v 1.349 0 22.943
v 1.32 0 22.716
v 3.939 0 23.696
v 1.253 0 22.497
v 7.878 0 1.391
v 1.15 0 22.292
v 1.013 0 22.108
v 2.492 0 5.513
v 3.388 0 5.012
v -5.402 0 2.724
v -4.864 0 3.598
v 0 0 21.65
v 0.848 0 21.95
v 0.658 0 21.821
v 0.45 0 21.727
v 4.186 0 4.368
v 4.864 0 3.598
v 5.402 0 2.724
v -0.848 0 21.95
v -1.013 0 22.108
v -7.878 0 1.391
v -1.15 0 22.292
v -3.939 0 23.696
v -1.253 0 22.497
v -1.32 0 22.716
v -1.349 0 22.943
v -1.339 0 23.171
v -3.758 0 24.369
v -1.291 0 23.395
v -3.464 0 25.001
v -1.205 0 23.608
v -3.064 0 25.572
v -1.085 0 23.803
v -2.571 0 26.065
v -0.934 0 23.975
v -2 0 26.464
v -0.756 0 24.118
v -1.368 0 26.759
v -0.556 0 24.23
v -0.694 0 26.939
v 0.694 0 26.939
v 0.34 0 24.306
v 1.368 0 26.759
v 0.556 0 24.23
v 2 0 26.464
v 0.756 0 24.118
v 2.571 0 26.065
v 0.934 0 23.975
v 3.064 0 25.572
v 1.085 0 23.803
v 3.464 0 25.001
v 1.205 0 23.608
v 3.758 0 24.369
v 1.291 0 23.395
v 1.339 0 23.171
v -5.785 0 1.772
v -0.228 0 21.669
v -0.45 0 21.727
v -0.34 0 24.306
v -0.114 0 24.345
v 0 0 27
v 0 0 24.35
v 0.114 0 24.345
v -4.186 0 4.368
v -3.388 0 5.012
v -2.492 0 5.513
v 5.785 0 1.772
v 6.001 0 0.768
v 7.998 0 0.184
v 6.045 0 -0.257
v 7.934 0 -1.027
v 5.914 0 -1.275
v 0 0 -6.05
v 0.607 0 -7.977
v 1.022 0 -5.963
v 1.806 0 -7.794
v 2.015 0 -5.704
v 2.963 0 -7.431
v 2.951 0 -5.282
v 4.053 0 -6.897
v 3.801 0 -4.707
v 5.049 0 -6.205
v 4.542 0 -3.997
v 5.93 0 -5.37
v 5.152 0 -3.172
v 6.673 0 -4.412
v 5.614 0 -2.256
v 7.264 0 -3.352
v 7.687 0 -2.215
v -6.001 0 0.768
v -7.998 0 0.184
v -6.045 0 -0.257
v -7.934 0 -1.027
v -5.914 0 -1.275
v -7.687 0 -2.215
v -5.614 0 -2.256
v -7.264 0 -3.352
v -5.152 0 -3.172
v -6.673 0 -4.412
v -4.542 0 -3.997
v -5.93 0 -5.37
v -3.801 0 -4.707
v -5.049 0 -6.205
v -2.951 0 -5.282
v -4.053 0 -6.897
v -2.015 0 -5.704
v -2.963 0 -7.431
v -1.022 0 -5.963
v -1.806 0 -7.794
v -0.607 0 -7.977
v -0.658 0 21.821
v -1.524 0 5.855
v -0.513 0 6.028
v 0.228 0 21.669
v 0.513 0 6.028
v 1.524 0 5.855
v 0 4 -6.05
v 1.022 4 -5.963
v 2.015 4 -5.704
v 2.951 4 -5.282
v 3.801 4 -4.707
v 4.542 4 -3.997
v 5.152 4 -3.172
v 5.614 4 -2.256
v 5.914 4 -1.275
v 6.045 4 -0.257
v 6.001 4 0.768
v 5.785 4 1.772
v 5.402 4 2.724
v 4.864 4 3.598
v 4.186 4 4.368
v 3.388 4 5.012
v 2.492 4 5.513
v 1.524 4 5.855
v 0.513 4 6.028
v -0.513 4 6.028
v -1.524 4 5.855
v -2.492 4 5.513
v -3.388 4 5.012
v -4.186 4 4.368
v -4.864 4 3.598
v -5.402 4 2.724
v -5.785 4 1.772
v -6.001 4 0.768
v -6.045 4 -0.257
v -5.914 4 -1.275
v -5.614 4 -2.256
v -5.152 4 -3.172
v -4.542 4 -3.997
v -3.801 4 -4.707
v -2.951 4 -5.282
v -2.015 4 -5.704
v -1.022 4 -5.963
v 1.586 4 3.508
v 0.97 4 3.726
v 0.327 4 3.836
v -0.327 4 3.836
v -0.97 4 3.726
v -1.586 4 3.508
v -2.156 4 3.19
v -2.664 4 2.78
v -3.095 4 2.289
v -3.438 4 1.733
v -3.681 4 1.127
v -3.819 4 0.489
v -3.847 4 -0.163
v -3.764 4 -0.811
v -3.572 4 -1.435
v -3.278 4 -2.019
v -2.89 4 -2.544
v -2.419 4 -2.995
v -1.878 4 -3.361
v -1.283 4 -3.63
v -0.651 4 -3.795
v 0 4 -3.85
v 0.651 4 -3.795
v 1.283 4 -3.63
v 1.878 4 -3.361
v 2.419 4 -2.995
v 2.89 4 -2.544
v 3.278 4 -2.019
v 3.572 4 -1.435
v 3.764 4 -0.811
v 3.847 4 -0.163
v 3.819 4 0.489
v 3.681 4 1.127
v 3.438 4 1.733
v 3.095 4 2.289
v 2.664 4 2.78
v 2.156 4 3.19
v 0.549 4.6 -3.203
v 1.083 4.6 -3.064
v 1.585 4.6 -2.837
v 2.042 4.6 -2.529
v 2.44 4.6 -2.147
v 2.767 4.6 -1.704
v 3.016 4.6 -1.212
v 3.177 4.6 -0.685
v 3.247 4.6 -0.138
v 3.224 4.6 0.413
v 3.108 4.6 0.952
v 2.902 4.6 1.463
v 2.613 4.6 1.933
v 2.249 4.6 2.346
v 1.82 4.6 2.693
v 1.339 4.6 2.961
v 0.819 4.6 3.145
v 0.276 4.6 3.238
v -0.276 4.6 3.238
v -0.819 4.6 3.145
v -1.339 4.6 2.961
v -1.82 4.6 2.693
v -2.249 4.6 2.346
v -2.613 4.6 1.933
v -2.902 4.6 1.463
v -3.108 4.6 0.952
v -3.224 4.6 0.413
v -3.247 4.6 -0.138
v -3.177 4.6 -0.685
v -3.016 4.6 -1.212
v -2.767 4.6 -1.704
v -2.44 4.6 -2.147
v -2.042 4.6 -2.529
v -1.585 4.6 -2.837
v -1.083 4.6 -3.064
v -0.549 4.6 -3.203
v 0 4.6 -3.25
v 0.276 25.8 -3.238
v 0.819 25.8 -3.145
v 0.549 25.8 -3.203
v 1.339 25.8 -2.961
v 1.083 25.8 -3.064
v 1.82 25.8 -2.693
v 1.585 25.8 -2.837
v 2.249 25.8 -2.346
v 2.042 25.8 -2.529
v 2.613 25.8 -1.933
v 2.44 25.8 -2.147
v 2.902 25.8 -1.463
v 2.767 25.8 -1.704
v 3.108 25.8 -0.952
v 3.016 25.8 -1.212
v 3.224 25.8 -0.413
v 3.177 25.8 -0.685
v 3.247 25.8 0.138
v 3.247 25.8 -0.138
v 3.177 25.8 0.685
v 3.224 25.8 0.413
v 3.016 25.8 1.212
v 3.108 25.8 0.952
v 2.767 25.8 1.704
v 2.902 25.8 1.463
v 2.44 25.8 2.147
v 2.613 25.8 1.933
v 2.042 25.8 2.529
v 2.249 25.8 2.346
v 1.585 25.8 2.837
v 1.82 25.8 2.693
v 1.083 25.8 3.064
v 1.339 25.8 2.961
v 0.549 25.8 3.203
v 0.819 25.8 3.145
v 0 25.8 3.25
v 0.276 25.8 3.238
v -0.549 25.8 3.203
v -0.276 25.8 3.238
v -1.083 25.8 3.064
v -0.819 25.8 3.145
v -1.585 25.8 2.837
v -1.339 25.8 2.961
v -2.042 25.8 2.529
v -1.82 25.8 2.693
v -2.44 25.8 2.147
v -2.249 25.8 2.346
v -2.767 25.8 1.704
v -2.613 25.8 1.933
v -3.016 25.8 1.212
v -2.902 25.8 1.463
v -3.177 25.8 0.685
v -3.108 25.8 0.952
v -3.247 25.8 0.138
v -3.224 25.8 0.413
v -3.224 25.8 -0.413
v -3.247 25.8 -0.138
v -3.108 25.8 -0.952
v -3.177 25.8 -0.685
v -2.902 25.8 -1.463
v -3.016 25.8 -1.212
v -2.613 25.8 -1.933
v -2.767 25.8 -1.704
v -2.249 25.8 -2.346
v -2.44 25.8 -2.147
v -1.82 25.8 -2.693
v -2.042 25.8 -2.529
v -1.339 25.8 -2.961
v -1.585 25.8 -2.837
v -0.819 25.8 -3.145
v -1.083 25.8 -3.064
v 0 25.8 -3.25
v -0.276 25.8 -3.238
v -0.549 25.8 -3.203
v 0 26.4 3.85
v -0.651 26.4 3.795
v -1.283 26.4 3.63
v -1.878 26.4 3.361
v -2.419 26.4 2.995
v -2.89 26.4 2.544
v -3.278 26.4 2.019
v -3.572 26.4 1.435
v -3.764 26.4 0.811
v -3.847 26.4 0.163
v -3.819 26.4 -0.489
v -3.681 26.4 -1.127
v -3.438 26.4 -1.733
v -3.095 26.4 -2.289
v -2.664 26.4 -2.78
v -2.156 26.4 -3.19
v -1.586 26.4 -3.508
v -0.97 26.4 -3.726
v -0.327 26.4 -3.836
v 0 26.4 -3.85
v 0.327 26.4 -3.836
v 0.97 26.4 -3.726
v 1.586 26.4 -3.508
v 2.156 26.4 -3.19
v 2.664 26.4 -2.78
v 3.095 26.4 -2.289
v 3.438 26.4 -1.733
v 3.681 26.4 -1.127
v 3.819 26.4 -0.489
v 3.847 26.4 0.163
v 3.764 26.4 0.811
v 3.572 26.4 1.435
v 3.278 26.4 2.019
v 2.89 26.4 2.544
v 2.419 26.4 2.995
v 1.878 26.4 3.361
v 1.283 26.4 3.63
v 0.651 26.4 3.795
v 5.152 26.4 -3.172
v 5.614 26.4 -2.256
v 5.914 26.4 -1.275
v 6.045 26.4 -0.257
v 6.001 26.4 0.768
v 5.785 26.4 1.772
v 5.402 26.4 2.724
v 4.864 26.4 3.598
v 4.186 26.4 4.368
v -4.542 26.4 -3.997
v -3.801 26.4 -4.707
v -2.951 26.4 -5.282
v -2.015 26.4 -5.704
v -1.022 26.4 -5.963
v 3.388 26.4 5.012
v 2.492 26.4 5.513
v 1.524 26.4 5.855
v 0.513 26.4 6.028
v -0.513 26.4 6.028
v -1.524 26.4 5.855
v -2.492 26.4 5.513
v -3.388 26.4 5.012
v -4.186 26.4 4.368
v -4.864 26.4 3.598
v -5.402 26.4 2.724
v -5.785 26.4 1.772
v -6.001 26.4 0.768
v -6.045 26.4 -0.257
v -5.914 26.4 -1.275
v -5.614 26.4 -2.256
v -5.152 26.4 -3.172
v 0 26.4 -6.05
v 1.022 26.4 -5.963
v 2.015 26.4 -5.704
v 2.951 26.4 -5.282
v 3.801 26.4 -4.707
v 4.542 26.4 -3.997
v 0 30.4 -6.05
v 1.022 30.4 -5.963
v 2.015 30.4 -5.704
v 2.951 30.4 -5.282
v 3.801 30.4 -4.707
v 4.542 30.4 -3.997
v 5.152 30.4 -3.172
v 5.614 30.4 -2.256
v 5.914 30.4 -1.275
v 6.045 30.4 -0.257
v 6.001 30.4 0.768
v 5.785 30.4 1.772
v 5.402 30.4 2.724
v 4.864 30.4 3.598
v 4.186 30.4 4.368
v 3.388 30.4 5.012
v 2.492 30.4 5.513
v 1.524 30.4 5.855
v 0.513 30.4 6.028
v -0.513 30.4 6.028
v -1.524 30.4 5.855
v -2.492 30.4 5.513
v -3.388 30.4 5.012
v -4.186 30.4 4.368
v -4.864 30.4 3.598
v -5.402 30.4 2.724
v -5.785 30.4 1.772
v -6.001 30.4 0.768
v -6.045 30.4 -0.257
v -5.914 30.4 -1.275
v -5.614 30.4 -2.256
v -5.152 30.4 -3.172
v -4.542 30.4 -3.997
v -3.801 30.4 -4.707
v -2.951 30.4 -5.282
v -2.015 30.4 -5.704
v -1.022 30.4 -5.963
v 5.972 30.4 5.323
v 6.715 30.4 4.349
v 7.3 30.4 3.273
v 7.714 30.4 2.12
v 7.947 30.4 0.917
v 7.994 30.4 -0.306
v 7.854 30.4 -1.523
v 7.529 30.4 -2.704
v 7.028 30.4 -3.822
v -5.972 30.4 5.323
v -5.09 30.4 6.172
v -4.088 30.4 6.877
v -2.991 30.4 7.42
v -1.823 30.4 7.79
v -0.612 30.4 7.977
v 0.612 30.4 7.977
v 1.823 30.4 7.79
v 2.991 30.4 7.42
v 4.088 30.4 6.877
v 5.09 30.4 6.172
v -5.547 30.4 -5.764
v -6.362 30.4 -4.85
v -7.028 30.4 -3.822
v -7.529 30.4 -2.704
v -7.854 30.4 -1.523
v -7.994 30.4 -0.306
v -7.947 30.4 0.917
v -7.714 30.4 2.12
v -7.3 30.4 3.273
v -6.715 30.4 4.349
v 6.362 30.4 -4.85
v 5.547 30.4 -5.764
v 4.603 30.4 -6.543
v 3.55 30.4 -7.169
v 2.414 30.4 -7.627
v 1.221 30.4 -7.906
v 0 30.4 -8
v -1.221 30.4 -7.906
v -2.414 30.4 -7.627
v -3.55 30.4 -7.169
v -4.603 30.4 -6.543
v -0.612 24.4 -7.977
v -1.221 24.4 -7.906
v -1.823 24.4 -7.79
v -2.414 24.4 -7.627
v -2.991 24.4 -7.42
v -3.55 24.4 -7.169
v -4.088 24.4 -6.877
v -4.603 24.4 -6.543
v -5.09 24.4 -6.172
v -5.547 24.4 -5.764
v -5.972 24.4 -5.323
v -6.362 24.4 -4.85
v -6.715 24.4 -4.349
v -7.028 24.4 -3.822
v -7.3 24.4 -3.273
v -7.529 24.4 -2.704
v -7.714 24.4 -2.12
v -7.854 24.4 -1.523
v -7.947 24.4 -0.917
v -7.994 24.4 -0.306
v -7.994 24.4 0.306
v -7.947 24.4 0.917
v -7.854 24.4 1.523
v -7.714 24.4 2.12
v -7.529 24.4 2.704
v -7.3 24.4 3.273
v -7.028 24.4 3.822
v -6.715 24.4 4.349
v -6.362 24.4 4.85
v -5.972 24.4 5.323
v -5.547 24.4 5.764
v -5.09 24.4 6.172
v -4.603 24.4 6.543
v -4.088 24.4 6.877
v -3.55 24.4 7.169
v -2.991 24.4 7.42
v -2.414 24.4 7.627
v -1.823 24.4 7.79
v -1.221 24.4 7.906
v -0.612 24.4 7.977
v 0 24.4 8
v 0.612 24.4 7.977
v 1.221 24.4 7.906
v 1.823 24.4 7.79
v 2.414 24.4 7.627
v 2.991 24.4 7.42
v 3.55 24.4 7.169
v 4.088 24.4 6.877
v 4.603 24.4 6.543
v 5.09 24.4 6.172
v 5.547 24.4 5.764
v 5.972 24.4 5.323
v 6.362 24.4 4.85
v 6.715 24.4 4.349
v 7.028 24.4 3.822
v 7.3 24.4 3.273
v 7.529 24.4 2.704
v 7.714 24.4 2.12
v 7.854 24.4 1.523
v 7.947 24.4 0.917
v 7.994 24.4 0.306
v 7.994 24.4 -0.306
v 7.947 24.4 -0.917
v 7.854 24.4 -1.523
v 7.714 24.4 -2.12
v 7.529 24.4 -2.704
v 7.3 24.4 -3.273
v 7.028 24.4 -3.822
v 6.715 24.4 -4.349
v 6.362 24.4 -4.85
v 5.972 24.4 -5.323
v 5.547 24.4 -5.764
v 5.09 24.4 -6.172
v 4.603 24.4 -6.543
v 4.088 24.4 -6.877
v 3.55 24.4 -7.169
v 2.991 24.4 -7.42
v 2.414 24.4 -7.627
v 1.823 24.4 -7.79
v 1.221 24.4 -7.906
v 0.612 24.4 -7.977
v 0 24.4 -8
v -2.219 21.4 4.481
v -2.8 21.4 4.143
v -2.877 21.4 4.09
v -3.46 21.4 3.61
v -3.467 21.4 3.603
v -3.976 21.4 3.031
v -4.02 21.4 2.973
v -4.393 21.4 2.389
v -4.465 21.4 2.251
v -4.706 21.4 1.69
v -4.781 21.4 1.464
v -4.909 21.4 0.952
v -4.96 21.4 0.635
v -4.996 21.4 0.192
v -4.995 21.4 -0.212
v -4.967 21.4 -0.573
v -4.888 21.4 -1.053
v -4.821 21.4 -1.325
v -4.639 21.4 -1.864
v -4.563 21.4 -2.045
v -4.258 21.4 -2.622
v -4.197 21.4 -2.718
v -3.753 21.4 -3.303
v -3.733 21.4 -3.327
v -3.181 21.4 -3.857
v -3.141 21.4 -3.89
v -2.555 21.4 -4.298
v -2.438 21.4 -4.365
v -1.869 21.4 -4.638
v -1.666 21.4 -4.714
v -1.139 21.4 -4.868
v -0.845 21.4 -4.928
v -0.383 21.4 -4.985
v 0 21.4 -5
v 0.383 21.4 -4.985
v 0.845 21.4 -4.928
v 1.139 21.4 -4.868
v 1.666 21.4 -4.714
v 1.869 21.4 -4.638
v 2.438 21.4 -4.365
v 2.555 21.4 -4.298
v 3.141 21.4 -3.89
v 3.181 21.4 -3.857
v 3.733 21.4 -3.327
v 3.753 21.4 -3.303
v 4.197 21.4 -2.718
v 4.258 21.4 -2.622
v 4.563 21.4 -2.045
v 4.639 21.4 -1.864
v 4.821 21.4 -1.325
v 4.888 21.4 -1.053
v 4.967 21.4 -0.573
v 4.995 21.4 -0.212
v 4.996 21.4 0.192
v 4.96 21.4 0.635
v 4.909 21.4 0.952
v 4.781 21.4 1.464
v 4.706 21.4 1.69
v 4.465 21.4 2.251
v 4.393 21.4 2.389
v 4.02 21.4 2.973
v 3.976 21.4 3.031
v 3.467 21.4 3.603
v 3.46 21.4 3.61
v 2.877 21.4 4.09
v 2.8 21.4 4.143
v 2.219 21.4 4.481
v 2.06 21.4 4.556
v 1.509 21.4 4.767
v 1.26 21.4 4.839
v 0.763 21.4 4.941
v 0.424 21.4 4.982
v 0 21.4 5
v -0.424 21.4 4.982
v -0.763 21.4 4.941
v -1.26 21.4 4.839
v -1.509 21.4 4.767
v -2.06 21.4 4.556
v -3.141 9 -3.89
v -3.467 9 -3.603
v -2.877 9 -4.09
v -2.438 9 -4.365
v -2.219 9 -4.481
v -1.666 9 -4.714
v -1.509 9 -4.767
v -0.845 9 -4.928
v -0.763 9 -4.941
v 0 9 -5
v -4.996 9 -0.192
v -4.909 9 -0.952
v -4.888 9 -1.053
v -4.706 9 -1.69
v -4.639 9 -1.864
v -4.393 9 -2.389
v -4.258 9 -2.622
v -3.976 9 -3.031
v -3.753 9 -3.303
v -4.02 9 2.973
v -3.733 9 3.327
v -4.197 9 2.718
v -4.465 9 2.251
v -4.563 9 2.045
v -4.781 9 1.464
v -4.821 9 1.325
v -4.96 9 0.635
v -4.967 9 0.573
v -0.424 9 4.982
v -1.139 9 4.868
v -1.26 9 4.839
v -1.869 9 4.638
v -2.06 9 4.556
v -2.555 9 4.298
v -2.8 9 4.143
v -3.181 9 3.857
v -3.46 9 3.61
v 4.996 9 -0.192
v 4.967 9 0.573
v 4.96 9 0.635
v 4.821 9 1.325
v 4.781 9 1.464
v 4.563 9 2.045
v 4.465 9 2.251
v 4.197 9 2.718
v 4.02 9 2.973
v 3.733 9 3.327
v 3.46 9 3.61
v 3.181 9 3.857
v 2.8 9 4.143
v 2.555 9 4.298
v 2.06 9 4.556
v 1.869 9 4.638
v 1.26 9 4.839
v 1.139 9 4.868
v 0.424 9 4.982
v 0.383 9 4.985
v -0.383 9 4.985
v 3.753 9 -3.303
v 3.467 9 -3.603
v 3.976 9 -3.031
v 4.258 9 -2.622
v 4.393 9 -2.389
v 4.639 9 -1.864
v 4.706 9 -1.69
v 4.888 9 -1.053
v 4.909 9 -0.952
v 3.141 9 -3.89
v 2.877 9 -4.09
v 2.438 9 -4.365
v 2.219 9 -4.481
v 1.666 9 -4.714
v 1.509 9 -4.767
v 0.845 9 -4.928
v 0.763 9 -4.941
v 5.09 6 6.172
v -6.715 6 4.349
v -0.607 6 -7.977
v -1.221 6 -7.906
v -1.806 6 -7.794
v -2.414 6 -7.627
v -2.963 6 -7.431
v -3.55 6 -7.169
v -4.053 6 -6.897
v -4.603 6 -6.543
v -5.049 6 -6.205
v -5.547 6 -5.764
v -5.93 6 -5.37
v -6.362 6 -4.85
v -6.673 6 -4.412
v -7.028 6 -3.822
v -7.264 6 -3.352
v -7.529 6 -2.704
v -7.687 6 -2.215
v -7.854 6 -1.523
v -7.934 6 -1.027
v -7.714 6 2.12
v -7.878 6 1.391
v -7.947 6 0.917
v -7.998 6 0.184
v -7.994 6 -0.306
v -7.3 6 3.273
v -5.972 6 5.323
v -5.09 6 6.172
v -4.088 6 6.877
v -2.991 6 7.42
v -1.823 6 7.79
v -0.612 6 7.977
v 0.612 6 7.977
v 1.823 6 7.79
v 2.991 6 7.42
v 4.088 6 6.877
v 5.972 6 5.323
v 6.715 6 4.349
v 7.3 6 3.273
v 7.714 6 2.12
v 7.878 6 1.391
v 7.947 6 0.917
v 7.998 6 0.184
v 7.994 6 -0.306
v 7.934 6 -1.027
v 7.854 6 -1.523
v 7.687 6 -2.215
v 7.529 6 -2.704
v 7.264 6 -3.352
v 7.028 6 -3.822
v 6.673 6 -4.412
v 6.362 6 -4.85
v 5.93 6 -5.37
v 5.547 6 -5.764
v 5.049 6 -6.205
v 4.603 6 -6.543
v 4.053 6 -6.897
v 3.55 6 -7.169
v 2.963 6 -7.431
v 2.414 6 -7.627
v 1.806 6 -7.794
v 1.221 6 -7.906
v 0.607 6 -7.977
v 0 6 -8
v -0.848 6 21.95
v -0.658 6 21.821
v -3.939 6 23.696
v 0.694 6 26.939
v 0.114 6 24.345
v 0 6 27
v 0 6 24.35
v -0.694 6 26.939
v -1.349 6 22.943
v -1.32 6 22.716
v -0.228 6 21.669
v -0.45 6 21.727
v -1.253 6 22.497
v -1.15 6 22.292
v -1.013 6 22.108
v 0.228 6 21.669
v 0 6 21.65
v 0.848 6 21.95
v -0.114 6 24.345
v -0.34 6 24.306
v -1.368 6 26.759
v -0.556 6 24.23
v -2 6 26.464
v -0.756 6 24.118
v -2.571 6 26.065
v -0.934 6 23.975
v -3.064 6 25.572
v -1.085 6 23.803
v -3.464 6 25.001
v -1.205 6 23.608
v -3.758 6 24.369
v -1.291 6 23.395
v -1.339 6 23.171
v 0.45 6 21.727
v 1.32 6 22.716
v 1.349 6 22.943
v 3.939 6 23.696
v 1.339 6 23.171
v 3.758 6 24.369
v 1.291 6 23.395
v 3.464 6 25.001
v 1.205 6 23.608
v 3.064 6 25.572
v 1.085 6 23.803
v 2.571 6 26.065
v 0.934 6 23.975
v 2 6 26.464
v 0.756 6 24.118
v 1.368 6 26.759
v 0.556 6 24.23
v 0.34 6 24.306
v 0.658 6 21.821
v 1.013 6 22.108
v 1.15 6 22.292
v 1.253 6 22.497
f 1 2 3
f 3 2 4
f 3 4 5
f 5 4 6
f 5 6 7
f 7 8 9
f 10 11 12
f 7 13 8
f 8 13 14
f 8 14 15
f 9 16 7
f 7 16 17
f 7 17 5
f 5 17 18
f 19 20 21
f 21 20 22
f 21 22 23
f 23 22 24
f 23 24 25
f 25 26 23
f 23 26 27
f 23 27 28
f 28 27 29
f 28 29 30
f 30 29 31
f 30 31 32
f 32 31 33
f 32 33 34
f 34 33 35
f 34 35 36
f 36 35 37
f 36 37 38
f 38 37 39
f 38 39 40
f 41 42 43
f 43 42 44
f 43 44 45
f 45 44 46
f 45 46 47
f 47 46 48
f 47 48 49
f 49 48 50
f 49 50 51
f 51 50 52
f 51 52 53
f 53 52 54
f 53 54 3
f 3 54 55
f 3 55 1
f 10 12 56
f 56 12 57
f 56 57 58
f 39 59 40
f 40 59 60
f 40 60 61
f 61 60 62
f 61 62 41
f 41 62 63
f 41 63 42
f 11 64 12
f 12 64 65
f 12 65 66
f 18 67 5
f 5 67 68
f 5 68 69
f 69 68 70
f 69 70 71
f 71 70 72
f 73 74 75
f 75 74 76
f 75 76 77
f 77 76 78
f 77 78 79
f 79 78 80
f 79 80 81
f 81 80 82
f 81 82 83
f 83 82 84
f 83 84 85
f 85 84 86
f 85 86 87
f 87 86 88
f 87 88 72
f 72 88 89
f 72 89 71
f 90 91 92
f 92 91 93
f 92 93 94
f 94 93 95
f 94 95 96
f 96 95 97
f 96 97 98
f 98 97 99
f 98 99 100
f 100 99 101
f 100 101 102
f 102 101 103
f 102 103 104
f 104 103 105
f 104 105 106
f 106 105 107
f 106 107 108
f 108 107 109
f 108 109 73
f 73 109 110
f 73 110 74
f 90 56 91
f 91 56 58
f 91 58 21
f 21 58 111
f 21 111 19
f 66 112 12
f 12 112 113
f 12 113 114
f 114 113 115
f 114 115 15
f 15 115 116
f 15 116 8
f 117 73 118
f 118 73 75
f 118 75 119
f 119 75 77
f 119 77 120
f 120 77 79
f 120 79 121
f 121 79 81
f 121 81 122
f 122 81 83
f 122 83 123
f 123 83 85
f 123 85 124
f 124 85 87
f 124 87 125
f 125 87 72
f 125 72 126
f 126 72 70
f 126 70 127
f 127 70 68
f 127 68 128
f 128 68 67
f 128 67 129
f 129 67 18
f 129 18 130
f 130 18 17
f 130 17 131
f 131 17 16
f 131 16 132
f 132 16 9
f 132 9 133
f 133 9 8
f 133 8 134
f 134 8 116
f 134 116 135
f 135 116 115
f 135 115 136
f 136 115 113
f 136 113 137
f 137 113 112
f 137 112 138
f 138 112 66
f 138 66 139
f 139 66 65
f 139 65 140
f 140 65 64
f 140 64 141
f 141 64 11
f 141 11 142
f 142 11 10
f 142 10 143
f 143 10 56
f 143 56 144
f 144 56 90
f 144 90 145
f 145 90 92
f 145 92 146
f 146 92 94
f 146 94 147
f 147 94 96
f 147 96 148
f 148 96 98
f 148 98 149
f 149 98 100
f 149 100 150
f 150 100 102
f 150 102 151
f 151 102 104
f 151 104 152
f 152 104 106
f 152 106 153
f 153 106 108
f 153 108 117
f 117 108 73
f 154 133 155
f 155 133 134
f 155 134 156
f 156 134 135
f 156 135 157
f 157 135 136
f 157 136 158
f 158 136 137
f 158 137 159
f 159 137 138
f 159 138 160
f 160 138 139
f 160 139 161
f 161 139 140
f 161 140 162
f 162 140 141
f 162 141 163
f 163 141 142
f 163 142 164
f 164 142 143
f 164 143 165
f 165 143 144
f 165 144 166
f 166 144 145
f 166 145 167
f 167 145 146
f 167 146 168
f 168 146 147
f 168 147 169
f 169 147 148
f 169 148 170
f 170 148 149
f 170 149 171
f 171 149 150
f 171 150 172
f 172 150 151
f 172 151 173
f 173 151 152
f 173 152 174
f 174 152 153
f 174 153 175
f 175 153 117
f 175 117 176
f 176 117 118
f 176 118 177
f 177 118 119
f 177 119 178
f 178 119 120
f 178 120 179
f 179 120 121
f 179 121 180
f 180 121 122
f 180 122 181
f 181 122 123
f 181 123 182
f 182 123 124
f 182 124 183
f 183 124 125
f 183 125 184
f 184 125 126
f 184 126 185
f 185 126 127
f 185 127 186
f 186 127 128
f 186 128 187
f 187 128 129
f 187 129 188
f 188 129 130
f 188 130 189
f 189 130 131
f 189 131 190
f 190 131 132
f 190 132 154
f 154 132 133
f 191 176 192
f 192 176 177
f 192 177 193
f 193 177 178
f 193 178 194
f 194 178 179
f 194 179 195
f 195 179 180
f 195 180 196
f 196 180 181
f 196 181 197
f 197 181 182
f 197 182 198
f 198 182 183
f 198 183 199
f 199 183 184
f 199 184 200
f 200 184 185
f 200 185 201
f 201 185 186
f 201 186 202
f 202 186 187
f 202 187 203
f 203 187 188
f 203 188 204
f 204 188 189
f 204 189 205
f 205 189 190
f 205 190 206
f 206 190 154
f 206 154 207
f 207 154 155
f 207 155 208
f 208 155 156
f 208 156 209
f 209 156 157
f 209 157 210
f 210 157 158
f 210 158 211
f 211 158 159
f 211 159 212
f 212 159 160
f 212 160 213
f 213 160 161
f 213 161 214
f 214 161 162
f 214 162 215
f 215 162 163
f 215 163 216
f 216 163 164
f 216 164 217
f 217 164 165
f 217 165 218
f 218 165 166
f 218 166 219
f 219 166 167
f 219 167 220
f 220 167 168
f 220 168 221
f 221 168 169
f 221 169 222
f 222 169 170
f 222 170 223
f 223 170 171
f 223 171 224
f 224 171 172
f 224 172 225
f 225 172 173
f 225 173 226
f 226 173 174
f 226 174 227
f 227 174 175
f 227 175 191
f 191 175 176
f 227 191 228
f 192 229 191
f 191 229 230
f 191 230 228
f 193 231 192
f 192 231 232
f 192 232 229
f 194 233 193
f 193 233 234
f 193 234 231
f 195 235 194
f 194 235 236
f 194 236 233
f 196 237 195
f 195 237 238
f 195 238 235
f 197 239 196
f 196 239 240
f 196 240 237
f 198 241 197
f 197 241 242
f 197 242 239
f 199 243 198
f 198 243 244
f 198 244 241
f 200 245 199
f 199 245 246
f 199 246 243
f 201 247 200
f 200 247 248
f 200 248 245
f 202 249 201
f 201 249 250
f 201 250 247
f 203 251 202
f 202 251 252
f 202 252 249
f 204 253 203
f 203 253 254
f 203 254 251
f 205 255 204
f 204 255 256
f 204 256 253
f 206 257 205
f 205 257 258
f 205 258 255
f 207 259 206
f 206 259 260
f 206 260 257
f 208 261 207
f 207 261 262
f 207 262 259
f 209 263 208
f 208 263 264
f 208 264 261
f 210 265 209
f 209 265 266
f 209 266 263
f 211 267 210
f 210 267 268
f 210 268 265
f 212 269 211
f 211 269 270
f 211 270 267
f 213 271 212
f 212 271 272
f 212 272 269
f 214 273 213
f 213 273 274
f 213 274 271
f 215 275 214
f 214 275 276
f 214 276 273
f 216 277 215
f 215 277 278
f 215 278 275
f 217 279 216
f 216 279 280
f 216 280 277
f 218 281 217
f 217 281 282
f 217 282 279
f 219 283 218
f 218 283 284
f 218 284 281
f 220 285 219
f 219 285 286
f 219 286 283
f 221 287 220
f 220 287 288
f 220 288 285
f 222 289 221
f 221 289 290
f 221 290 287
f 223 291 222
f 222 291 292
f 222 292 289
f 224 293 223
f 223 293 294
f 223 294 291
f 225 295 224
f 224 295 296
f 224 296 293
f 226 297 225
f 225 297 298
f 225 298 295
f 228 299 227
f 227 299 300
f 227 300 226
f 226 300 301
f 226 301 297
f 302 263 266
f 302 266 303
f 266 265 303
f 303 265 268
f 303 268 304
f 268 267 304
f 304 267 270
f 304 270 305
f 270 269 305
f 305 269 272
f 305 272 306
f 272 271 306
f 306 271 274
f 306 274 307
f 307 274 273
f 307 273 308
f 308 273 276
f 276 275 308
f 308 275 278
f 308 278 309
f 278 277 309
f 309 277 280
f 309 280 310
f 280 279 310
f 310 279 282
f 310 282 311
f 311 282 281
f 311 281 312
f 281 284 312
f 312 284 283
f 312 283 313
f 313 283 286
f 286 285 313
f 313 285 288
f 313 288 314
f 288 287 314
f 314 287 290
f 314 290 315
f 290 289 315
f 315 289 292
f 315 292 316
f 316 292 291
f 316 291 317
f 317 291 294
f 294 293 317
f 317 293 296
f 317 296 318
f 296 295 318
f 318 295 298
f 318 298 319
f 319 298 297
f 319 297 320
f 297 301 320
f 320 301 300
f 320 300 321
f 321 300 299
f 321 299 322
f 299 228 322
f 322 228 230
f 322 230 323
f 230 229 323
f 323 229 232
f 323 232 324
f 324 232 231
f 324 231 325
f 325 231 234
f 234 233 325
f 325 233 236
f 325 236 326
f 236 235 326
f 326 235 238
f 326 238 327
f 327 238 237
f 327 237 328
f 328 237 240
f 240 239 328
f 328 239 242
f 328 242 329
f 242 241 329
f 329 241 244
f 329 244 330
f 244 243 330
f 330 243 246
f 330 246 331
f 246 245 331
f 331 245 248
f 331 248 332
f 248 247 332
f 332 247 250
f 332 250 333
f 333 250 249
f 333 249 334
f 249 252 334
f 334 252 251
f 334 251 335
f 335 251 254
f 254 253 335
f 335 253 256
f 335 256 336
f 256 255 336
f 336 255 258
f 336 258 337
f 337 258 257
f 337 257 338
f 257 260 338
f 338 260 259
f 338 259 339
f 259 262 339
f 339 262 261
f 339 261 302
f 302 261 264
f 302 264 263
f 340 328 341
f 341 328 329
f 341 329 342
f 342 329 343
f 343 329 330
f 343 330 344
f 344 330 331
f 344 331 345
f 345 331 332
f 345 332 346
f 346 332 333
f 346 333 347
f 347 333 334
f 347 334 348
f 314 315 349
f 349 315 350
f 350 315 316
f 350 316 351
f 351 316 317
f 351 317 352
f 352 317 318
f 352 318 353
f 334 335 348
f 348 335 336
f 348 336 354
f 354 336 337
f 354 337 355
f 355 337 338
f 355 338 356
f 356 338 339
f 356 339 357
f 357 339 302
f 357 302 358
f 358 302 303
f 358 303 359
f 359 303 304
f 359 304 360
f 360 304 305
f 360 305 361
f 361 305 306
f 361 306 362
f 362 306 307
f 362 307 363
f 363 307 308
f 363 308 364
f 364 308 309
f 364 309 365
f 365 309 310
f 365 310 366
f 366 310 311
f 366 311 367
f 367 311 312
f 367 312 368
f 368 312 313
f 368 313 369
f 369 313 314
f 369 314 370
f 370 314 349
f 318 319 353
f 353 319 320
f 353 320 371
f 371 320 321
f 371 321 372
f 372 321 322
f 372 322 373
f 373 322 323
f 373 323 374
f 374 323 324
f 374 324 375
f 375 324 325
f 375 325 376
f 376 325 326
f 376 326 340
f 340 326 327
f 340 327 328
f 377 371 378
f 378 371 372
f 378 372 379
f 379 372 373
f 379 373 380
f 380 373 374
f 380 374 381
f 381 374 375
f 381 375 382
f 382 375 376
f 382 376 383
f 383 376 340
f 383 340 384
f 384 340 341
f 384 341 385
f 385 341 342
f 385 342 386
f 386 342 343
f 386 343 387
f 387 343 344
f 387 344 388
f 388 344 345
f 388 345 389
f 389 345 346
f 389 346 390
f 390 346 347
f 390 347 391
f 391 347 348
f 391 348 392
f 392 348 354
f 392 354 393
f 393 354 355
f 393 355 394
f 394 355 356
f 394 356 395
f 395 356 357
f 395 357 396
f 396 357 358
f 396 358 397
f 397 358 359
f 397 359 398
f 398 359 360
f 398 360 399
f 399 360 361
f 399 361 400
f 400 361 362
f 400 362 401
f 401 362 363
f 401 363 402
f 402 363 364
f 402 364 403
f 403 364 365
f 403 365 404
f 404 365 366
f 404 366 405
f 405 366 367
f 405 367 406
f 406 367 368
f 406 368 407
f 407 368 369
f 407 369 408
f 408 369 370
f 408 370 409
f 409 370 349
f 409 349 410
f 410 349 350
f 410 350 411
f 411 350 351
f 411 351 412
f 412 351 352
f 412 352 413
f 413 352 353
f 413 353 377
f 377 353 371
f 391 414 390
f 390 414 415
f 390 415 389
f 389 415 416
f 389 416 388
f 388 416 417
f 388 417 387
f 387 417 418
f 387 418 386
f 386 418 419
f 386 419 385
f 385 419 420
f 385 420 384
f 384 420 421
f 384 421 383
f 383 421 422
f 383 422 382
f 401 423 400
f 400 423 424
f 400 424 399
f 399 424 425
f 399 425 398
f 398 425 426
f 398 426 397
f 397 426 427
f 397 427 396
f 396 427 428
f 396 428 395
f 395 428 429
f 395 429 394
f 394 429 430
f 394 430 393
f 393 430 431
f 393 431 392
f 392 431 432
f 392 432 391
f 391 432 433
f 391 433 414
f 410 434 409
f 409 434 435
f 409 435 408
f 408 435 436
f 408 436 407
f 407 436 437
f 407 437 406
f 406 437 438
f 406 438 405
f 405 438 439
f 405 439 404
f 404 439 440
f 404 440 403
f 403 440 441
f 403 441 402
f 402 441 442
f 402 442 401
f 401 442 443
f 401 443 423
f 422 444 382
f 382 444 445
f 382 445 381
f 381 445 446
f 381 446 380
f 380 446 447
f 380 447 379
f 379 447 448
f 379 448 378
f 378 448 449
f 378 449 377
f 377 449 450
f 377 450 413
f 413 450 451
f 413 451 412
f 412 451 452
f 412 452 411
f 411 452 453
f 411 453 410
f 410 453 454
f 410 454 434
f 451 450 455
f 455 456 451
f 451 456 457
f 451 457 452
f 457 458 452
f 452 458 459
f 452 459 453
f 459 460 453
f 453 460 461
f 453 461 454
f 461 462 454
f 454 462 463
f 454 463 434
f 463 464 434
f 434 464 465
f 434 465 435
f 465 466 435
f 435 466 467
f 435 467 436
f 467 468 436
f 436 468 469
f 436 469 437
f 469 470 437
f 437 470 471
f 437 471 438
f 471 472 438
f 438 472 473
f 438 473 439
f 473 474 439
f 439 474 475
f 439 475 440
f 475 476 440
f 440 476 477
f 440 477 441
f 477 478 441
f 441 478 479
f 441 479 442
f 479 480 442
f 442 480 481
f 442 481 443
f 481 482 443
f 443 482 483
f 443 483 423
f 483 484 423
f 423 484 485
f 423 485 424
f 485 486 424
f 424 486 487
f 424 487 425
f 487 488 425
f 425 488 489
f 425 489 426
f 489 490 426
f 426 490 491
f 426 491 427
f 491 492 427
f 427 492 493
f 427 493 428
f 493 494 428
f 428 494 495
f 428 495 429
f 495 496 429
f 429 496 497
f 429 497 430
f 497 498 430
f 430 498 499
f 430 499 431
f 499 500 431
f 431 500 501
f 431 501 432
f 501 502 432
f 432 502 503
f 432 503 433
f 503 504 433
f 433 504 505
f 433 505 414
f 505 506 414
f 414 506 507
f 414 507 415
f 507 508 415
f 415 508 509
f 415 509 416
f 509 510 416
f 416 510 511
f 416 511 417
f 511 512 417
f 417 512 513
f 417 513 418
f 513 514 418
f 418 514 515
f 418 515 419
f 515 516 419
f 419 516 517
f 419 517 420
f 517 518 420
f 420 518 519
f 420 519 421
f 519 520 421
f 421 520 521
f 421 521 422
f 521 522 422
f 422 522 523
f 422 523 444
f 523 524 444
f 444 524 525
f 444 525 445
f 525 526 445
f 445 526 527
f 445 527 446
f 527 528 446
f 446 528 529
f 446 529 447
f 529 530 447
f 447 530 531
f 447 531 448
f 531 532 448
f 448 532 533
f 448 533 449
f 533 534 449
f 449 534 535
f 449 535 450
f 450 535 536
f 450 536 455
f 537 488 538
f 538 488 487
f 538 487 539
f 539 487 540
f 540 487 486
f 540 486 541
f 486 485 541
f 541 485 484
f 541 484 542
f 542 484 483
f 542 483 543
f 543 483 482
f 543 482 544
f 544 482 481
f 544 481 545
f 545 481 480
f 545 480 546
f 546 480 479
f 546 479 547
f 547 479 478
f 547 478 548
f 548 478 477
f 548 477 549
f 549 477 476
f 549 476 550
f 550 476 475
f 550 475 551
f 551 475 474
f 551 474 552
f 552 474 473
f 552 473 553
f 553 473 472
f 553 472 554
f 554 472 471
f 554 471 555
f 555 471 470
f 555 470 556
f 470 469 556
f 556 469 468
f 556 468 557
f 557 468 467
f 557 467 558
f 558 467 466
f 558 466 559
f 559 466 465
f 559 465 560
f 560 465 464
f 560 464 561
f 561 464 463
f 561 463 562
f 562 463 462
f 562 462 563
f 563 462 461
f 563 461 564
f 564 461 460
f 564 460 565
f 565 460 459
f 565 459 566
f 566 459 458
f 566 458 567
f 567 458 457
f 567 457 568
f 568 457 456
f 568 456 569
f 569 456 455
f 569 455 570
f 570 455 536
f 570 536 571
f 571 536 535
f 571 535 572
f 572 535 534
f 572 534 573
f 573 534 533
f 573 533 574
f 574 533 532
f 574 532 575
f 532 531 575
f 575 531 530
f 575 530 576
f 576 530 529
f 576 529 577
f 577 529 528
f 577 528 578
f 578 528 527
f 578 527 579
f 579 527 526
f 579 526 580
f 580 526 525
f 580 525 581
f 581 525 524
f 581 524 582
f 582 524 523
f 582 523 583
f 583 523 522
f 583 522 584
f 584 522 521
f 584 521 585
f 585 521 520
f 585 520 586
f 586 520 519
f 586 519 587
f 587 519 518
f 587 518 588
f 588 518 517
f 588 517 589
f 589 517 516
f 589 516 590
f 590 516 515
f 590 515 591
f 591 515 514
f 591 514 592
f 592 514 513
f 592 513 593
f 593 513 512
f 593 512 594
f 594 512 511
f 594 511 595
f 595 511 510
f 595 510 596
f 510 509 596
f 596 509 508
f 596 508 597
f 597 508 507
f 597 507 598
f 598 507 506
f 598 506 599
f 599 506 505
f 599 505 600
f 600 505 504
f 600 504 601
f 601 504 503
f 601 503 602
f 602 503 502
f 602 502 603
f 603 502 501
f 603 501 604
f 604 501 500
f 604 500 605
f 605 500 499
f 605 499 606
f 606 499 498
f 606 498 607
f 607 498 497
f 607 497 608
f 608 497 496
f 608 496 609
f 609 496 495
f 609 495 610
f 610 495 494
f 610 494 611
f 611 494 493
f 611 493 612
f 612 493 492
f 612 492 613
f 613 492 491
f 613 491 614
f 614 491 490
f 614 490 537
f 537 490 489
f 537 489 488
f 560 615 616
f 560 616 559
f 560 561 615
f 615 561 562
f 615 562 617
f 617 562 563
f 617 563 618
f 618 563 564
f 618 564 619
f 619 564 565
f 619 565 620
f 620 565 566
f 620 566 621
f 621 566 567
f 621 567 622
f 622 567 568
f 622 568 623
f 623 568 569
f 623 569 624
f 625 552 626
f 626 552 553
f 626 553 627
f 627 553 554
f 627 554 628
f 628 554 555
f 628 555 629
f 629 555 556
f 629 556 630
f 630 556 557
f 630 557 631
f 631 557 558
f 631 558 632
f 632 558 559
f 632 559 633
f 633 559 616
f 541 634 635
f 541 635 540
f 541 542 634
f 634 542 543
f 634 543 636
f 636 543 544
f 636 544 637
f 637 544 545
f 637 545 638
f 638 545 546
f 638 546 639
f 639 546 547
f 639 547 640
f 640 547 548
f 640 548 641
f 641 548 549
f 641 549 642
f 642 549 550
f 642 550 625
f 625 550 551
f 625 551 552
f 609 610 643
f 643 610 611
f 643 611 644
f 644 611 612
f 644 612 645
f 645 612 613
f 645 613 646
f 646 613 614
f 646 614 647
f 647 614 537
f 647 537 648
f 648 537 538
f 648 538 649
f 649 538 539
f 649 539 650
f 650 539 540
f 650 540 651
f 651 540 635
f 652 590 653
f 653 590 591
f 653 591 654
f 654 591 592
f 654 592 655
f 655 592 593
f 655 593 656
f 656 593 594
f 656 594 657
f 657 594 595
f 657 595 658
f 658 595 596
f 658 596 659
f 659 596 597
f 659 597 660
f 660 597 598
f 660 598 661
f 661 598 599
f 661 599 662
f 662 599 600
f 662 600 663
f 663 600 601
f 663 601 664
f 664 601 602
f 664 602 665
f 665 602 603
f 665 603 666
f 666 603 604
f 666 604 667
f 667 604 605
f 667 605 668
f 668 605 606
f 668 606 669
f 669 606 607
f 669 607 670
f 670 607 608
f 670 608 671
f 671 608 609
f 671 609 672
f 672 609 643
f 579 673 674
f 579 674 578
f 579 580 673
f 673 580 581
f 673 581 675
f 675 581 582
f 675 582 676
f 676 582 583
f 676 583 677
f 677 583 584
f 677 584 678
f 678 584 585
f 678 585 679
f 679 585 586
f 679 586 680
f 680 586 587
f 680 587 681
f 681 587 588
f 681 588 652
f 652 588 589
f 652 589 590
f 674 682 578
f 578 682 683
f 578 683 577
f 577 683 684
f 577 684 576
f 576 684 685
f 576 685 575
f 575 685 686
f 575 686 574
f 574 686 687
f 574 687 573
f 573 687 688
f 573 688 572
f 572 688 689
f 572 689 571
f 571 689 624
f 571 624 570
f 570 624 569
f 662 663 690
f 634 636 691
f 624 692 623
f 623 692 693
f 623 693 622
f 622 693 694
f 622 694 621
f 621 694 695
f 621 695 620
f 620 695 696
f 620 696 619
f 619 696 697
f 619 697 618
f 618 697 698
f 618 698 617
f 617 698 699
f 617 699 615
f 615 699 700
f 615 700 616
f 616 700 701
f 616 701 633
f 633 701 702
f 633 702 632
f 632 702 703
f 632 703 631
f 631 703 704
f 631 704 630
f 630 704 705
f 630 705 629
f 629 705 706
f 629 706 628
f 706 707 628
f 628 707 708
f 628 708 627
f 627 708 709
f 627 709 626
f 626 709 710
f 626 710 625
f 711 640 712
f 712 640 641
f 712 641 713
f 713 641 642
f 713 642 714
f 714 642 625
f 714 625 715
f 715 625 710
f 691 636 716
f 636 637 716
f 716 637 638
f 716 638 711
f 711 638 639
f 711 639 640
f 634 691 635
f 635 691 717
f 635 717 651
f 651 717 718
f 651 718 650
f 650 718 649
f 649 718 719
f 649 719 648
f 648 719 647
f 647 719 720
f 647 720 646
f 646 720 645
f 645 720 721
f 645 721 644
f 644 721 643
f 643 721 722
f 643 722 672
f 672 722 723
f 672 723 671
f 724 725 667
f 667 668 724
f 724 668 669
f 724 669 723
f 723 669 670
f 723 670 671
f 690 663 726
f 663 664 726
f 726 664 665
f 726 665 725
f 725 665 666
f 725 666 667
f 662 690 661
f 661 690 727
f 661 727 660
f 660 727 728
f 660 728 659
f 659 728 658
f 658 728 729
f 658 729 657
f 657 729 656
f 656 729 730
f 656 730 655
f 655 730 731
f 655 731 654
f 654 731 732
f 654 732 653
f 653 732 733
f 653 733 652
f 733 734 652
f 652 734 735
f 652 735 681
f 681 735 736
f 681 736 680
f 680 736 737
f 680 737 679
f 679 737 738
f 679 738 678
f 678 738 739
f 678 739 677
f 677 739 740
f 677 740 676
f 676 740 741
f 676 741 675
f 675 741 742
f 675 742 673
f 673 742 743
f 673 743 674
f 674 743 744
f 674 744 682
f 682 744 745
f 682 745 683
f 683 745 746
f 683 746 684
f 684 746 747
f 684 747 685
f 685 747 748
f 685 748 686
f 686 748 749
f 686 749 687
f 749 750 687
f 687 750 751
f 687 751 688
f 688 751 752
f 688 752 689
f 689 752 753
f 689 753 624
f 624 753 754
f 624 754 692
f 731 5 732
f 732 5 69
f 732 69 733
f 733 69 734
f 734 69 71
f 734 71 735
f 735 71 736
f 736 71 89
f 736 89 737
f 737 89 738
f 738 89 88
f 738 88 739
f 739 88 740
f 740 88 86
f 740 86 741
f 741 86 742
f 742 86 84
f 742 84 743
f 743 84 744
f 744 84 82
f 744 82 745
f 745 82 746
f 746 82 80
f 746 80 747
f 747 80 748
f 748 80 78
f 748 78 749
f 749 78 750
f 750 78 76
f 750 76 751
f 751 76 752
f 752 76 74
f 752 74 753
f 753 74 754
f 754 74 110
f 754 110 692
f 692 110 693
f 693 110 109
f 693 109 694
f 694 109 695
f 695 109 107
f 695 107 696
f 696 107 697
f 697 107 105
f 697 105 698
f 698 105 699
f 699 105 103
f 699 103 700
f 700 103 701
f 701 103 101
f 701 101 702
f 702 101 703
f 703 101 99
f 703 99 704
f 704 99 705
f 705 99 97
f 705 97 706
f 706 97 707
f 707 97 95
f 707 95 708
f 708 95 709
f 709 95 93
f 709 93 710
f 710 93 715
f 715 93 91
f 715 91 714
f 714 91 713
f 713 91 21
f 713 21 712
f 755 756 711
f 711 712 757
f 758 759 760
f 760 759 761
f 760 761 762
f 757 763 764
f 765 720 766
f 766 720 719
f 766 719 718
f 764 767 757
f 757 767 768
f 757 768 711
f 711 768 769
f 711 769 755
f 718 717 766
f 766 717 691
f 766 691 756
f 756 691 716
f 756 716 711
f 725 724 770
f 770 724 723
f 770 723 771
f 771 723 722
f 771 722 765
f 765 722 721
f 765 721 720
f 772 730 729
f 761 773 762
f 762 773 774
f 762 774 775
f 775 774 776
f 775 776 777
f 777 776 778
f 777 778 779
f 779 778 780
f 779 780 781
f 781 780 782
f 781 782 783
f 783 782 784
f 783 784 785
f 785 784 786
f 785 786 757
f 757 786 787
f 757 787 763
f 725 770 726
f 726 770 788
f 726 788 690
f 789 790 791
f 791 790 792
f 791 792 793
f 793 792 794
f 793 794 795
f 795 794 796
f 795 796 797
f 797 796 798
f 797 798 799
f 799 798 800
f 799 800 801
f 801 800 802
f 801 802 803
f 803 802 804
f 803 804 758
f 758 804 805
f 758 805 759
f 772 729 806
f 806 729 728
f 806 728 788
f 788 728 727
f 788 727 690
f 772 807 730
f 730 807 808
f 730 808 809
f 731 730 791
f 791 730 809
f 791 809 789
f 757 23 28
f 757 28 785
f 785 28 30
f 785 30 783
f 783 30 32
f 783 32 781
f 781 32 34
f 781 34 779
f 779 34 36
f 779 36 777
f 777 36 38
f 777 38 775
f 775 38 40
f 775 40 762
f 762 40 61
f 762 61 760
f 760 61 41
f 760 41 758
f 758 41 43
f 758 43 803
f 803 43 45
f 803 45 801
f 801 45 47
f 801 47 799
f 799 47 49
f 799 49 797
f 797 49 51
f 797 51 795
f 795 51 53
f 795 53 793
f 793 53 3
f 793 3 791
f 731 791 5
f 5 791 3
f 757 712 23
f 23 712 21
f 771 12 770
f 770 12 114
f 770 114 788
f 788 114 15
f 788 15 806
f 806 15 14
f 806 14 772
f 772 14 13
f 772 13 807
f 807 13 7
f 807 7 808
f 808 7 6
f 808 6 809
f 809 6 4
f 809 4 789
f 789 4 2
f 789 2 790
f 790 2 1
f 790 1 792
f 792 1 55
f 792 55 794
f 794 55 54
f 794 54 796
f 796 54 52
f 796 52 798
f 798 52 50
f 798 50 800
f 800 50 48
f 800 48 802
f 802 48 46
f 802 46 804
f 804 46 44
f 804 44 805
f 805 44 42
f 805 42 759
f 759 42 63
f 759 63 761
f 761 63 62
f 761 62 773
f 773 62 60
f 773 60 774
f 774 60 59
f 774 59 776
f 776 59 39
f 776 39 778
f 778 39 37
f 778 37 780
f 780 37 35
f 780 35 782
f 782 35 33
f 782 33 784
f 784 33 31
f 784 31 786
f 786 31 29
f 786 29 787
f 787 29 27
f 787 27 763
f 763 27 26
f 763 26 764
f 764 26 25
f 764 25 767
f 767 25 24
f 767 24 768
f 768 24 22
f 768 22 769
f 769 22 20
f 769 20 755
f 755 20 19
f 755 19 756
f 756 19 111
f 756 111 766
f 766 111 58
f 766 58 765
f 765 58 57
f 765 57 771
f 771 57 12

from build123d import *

# Parameters (mm, degrees)
ESQUISSE2_R        = 1.35
BOSS_EXTRU_2_DEPTH = 6


with BuildPart() as part:
    # Esquisse1 → Révolution1 (revolve)
    with BuildSketch(Plane.XY, mode=Mode.PRIVATE) as r_volution1_sk:
        Polygon((-6.05, 0), (-6.05, 4), (-3.85, 4), (-3.25, 4.6), (-3.25, 25.8), (-3.85, 26.4), (-6.05, 26.4), (-6.05, 30.4), (-8, 30.4), (-8, 24.4), (-5, 21.4), (-5, 9), (-8, 6), (-8, 0), align=None)
    revolve(r_volution1_sk.sketch.rotate(Axis((0, -1.144220684, 0), (0, 1, 0)), 270), axis=Axis((0, -1.144220684, 0), (0, 1, 0)))

    # Esquisse2 → Boss.-Extru.2 (add)
    with BuildSketch(Plane(origin=(0, 0, 0), x_dir=(1, 0, 0), z_dir=(0, 1, 0))):
        with BuildLine():
            Line((-7.878088106, -1.391304348), (-3.939044053, -23.695652174))
            ThreePointArc((-3.939044053, -23.695652174), (0, -27), (3.939044053, -23.695652174))
            Line((3.939044053, -23.695652174), (7.878088106, -1.391304348))
            ThreePointArc((7.878088106, -1.391304348), (0, -8), (-7.878088106, -1.391304348))
        make_face()
        with Locations(Location((0, -23, 0), (0, 0, 270))):
            Circle(ESQUISSE2_R, mode=Mode.SUBTRACT)
    extrude(amount=BOSS_EXTRU_2_DEPTH)


solid = part.part
